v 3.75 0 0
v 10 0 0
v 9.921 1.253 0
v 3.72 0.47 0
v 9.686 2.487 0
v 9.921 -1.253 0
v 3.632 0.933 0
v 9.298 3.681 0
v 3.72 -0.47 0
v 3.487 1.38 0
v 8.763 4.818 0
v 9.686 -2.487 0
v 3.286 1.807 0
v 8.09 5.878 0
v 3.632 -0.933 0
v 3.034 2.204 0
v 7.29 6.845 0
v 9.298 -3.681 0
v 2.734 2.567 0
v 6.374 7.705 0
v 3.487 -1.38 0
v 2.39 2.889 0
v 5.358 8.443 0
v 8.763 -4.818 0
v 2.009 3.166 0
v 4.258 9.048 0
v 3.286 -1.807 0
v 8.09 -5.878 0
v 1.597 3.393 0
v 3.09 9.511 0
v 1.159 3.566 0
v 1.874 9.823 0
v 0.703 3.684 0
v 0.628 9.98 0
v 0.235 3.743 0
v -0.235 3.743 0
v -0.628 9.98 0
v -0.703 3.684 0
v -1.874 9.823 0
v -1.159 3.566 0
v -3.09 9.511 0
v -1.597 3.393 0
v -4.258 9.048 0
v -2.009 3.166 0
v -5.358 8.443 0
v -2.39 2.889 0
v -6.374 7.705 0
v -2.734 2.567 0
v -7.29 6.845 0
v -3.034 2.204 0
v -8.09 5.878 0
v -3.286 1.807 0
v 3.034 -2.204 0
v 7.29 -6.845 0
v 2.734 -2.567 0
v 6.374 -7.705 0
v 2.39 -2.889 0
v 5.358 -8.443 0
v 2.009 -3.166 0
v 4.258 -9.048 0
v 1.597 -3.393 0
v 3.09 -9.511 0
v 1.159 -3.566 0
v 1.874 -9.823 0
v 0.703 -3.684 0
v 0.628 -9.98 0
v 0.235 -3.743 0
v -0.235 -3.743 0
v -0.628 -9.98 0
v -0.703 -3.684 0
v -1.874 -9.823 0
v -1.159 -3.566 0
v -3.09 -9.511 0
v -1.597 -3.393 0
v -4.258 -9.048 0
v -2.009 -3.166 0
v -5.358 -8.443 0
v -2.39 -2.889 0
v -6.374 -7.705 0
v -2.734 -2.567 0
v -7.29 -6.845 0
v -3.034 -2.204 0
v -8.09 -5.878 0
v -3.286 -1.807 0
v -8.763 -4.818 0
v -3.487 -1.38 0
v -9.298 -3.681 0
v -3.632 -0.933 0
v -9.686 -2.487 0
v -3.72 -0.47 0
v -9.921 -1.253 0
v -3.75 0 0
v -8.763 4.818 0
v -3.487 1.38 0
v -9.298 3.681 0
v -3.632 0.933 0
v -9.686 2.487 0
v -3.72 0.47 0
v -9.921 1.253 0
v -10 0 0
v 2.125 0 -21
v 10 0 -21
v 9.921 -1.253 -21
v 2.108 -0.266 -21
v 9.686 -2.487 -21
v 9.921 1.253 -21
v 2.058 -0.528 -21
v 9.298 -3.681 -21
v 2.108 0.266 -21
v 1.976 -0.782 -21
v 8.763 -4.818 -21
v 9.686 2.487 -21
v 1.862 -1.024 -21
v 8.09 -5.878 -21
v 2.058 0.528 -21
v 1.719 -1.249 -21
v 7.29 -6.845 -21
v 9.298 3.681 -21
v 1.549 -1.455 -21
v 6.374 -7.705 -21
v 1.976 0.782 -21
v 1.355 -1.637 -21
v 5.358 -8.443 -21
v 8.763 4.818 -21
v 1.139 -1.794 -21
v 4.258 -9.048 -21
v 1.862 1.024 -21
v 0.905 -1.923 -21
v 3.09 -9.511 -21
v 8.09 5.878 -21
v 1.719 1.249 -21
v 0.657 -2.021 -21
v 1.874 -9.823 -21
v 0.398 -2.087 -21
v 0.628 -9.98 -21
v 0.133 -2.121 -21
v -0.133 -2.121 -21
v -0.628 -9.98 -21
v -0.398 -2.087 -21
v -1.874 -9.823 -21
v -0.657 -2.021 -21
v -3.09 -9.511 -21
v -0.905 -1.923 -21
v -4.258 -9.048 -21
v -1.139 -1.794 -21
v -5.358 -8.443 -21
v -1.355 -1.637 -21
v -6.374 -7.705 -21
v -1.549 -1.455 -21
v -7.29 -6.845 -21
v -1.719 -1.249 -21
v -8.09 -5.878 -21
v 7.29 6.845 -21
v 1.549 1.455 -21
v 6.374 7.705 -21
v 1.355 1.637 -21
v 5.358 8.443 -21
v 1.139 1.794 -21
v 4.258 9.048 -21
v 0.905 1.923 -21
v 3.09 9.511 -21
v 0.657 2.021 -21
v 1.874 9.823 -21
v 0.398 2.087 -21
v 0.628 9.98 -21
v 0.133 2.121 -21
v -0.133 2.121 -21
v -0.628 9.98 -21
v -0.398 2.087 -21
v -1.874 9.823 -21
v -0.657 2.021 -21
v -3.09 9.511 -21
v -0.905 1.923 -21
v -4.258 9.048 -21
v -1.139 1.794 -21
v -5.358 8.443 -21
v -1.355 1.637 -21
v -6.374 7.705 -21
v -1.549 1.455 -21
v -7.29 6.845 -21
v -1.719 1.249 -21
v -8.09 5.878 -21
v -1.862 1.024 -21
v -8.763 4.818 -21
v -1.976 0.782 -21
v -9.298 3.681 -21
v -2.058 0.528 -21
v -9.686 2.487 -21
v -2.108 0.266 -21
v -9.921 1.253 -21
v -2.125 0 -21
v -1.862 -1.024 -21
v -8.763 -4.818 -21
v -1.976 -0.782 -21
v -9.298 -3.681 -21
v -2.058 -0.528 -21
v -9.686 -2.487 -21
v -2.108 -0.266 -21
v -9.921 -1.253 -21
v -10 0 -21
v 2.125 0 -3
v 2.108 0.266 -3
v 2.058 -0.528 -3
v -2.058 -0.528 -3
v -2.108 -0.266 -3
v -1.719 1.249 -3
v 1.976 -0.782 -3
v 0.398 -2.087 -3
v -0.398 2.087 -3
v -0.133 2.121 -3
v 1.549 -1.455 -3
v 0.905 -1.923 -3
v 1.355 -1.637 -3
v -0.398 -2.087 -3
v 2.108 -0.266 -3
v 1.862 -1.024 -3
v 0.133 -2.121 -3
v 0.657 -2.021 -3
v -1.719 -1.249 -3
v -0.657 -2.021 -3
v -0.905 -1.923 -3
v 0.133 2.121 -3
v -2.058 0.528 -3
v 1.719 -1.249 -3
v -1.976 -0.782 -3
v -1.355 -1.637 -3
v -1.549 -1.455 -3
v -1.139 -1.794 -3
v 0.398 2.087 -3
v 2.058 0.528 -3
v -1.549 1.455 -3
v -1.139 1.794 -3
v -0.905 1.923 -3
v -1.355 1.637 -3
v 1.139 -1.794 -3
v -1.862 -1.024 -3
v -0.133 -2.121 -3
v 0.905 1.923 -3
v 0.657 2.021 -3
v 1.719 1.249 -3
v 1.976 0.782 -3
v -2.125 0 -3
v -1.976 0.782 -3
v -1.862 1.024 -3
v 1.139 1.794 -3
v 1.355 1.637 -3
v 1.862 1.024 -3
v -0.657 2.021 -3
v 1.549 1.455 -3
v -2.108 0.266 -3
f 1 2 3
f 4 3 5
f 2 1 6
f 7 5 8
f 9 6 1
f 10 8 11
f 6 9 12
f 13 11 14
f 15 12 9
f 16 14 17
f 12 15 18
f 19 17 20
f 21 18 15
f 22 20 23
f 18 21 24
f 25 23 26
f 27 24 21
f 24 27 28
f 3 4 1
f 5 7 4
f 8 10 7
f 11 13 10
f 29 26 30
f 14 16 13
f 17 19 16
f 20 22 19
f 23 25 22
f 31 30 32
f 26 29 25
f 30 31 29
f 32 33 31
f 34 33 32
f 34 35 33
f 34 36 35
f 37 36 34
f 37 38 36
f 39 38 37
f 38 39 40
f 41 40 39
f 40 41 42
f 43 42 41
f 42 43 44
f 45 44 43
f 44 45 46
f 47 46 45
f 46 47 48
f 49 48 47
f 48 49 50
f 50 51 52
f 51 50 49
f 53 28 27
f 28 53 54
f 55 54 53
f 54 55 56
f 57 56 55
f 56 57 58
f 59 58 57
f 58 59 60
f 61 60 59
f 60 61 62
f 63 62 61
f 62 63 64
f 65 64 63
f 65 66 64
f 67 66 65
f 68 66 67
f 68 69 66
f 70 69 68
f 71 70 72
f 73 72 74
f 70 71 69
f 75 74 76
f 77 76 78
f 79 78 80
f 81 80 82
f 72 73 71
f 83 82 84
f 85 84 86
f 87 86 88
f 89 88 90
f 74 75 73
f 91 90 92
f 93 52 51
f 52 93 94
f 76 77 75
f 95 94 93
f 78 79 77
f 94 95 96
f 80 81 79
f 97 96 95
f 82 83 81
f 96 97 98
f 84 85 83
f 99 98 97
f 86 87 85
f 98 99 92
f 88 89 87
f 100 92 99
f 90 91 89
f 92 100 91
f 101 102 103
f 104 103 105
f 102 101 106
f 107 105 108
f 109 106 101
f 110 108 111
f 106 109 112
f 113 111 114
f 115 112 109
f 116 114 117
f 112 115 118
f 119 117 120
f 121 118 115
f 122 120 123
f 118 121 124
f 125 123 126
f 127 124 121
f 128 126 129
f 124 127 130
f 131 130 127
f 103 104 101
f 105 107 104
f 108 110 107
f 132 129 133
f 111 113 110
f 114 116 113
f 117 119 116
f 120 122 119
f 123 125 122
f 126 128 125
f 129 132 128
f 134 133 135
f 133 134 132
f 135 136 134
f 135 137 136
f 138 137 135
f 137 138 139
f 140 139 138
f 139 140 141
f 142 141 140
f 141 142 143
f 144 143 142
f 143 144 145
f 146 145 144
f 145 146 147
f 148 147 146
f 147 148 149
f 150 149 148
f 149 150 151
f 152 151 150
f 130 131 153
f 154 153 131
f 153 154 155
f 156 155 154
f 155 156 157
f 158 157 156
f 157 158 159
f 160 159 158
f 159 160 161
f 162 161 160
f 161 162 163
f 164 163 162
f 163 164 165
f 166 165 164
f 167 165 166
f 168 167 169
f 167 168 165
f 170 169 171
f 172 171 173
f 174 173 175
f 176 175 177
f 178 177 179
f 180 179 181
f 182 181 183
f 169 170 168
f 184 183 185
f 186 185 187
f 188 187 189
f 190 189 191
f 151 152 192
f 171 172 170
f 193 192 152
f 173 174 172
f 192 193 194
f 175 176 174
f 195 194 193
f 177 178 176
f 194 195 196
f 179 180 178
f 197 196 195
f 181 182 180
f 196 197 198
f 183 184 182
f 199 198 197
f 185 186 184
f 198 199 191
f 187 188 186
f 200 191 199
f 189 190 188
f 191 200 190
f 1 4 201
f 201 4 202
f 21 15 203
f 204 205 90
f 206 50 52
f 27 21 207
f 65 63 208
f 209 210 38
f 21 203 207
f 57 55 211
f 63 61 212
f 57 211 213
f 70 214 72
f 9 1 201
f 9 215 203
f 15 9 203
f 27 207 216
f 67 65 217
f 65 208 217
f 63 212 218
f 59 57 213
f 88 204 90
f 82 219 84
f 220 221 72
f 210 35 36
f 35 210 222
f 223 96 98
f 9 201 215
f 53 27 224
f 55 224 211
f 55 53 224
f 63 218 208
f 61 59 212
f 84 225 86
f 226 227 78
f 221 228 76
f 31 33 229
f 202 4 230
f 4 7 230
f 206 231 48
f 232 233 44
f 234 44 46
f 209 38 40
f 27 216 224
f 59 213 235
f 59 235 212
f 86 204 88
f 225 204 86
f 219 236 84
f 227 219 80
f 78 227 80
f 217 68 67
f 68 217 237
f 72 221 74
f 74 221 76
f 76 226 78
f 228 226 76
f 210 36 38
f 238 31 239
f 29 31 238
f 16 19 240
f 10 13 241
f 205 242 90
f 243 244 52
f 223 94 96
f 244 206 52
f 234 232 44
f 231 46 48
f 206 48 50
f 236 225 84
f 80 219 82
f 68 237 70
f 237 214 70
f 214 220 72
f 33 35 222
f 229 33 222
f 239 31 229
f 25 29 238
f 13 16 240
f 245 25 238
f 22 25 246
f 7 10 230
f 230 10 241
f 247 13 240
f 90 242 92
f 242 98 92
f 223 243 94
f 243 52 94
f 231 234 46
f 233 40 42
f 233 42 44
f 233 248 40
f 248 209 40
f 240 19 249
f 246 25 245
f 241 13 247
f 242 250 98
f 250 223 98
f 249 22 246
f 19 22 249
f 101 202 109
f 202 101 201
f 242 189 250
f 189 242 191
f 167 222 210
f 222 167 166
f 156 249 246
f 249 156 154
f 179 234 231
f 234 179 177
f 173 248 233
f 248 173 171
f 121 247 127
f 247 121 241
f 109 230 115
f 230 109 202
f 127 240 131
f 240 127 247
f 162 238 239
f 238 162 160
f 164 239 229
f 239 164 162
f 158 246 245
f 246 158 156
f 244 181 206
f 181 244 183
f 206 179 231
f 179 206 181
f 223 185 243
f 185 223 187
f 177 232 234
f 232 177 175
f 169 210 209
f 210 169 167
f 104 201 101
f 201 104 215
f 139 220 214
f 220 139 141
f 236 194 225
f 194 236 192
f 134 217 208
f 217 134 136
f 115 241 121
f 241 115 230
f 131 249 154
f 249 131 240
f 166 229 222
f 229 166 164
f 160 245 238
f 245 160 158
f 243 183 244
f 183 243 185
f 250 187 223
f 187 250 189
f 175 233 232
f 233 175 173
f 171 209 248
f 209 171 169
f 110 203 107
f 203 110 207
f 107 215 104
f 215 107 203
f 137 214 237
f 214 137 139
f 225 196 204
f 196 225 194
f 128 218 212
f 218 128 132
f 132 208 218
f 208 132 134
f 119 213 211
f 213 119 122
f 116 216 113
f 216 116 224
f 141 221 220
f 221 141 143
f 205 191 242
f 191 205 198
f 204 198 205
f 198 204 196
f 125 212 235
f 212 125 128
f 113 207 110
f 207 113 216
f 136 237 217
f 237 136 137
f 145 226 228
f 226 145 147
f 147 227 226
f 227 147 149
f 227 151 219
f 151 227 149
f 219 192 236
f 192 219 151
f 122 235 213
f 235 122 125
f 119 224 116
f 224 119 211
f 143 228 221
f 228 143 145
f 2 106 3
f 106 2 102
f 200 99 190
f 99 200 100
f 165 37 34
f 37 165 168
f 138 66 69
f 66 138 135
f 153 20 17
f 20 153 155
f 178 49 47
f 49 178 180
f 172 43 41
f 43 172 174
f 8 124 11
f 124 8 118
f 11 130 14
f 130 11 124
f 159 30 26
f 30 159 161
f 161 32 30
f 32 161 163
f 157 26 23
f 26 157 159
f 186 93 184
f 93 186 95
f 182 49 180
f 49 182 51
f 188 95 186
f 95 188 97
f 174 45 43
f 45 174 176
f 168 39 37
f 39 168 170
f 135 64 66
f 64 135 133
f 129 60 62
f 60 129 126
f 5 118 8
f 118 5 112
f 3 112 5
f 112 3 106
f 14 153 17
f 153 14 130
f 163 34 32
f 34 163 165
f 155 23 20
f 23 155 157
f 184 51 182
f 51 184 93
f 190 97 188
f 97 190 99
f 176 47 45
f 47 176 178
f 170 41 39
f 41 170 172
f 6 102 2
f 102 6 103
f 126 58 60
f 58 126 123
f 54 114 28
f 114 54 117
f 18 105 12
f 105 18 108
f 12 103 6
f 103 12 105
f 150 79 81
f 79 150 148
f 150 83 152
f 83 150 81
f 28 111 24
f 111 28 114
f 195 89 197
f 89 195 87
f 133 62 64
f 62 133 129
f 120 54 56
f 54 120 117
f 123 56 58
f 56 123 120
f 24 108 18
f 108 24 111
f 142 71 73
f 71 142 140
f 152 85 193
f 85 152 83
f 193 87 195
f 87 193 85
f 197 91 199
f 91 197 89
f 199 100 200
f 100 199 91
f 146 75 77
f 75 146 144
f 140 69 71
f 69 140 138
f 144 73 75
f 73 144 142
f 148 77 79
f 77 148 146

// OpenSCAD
$fn = 50;


difference() {
	union() {
		translate(v = [0, 0, -21.0000000000]) {
			cylinder(h = 21, r = 10.0000000000);
		}
		cylinder(h = 0, r = 19.0000000000);
	}
	union() {
		translate(v = [0, 0, 0]) {
			rotate(a = [0, 0, 0]) {
				difference() {
					union() {
						#translate(v = [0, 0, -21.0000000000]) {
							cylinder(h = 21, r = 2.0000000000);
						}
						#translate(v = [0, 0, -3]) {
							cylinder(h = 3, r = 10.0000000000, r1 = 2.1250000000, r2 = 3.7500000000);
						}
						#translate(v = [0, 0, -21.0000000000]) {
							cylinder(h = 21, r = 2.1250000000);
						}
						#translate(v = [0, 0, -21.0000000000]) {
							cylinder(h = 21, r = 2.0000000000);
						}
					}
					union();
				}
			}
		}
	}
}
